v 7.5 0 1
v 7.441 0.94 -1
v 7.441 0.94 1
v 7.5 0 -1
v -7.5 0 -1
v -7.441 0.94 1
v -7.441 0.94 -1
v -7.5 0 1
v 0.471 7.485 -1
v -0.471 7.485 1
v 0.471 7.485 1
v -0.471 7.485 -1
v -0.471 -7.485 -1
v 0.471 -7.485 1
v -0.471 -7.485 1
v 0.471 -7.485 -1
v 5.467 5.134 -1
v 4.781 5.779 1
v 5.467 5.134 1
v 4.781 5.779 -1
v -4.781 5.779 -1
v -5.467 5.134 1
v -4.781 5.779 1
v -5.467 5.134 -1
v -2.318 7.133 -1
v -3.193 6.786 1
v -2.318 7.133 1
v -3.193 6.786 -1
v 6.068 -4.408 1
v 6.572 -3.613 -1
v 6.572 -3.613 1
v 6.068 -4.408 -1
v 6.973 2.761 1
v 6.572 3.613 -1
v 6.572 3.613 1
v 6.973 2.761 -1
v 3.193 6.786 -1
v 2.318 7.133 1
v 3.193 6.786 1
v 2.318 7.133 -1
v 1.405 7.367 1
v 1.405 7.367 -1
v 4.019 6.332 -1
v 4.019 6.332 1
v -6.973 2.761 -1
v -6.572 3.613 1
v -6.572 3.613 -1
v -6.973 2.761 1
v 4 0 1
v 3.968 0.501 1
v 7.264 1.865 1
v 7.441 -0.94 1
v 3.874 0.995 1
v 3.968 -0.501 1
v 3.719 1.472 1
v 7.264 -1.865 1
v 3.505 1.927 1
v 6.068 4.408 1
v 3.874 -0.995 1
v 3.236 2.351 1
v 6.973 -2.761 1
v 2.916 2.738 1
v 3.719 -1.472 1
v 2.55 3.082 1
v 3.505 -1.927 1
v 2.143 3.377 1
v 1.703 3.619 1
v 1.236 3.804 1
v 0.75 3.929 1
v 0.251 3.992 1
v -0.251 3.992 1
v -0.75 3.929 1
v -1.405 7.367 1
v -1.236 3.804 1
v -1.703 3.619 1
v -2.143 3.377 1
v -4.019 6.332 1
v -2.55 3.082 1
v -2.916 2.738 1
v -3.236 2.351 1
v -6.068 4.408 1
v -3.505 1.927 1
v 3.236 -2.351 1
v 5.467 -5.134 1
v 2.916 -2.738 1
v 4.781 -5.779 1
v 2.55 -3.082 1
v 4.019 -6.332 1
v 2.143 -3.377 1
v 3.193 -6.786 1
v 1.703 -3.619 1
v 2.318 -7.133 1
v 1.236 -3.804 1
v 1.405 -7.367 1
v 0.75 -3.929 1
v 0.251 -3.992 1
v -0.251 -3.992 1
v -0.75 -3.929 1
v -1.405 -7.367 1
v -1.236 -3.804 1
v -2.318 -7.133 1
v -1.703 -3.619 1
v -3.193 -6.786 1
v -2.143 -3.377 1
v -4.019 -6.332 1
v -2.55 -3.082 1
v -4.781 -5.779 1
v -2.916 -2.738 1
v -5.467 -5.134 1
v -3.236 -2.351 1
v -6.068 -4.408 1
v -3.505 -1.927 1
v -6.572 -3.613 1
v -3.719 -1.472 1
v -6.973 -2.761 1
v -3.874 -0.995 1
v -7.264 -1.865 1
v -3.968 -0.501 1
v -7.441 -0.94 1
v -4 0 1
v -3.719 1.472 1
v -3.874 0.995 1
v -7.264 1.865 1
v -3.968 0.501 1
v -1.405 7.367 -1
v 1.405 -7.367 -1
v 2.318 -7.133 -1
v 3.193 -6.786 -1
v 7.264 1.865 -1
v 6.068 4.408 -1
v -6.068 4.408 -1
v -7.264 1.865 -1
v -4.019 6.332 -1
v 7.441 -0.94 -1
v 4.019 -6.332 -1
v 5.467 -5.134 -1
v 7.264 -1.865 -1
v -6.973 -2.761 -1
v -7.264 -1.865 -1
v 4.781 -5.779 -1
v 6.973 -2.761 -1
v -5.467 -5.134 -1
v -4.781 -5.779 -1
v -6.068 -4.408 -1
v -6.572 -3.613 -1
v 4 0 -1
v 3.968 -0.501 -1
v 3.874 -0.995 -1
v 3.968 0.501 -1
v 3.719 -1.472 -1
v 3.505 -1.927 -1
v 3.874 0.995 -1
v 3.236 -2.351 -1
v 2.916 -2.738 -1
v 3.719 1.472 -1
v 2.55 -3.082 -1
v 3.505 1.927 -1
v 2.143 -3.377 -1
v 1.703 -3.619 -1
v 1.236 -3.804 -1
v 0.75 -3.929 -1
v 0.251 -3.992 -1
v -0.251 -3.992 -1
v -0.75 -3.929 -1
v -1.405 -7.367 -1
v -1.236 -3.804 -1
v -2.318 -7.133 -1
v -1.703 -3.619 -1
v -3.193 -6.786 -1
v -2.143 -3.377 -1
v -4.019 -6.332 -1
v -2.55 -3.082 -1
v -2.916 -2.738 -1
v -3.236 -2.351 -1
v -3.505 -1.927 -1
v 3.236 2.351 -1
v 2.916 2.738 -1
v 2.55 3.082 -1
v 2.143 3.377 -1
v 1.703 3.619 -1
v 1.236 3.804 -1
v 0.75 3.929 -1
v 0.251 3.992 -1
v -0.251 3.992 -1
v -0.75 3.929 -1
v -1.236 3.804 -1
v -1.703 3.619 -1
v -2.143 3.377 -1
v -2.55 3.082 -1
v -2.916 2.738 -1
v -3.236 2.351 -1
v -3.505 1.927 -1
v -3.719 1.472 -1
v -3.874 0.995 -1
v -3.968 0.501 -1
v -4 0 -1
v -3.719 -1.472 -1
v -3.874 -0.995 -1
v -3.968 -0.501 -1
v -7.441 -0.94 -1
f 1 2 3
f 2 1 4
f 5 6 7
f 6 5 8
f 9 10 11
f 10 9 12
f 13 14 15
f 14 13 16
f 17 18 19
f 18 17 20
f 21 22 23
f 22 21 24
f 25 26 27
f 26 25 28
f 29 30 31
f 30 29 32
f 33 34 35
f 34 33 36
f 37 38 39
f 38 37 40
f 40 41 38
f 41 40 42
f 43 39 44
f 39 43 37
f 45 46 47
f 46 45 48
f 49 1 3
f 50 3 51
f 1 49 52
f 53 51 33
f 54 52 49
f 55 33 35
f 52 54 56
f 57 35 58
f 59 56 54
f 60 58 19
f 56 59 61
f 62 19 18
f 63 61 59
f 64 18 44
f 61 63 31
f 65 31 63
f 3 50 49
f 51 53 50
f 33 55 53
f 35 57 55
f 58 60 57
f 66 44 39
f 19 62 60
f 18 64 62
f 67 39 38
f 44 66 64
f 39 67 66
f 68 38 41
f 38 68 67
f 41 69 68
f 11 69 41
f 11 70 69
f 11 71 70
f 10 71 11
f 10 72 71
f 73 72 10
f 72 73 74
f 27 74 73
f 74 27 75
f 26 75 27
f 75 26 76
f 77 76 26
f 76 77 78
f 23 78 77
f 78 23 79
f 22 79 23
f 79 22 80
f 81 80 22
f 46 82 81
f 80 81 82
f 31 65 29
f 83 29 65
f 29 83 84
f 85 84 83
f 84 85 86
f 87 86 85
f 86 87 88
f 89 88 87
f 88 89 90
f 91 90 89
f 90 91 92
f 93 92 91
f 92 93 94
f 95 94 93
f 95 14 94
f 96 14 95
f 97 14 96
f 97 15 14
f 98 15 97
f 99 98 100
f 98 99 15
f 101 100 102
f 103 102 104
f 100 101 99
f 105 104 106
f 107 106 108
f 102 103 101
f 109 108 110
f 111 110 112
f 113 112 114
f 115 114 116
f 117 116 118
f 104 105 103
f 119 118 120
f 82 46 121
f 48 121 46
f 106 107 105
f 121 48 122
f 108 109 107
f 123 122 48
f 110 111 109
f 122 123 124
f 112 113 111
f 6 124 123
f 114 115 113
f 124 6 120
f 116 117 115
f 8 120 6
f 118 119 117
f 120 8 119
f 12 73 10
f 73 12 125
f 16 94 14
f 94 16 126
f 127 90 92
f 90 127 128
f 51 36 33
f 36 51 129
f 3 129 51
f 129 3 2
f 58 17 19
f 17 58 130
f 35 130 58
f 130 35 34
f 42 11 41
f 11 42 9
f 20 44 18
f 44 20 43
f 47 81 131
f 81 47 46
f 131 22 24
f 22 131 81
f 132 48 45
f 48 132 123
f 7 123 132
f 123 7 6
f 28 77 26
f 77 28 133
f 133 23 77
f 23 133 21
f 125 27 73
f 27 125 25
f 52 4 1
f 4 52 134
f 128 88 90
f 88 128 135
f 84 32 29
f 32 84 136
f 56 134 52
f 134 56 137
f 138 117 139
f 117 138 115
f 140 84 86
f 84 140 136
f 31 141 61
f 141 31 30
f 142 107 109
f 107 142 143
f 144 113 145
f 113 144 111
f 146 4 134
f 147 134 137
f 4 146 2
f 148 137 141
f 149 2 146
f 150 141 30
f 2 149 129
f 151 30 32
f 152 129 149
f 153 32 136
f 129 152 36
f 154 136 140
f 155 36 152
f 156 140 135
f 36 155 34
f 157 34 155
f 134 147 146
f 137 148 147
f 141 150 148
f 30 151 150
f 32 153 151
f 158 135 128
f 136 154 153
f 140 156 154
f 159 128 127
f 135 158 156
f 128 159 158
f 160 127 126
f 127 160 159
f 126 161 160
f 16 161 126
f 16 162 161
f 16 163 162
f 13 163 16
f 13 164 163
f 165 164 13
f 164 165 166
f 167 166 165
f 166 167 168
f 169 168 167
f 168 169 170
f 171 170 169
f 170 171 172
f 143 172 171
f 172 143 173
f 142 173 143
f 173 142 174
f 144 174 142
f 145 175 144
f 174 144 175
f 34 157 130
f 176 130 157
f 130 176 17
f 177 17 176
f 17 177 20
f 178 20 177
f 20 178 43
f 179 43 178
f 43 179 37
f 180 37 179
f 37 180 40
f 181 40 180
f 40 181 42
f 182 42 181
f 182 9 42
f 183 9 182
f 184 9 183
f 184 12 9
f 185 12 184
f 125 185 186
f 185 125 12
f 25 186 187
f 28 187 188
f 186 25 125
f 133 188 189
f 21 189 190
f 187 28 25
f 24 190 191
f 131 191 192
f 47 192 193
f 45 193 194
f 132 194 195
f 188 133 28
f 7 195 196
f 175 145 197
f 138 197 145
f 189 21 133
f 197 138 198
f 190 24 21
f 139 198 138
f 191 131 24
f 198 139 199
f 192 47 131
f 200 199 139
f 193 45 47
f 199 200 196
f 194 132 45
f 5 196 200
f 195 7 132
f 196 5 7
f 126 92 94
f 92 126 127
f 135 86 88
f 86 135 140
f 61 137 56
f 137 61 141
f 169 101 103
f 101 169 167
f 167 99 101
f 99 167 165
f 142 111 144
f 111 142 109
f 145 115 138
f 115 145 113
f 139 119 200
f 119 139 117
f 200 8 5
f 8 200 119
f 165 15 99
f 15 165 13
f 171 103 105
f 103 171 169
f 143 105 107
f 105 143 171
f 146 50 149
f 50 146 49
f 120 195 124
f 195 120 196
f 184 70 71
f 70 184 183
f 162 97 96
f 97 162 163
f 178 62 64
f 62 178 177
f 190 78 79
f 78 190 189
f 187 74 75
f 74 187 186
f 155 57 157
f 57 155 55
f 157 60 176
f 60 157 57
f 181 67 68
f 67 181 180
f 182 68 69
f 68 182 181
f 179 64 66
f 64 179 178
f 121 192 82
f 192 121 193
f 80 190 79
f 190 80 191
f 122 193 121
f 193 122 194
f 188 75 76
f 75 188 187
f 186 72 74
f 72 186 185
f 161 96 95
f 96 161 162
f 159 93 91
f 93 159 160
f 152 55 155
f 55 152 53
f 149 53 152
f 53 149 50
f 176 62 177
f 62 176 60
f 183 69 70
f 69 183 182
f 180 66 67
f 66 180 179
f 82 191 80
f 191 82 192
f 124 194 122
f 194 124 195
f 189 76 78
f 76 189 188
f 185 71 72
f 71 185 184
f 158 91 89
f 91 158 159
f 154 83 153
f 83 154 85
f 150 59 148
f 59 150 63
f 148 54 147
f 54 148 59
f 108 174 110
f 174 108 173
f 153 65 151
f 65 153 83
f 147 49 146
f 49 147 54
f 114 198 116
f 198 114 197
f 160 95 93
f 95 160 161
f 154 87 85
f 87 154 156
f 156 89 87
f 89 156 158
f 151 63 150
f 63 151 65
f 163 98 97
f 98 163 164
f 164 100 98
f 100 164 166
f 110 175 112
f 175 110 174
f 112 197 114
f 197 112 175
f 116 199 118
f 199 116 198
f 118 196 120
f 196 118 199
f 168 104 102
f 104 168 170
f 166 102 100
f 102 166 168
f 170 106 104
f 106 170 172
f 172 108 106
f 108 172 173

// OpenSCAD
$fn = 50;


difference() {
	union() {
		translate(v = [0, 0, -1.0000000000]) {
			cylinder(h = 2, r = 7.5000000000);
		}
	}
	union() {
		translate(v = [0, 0, -100.0000000000]) {
			cylinder(h = 200, r = 4.0000000000);
		}
	}
}
